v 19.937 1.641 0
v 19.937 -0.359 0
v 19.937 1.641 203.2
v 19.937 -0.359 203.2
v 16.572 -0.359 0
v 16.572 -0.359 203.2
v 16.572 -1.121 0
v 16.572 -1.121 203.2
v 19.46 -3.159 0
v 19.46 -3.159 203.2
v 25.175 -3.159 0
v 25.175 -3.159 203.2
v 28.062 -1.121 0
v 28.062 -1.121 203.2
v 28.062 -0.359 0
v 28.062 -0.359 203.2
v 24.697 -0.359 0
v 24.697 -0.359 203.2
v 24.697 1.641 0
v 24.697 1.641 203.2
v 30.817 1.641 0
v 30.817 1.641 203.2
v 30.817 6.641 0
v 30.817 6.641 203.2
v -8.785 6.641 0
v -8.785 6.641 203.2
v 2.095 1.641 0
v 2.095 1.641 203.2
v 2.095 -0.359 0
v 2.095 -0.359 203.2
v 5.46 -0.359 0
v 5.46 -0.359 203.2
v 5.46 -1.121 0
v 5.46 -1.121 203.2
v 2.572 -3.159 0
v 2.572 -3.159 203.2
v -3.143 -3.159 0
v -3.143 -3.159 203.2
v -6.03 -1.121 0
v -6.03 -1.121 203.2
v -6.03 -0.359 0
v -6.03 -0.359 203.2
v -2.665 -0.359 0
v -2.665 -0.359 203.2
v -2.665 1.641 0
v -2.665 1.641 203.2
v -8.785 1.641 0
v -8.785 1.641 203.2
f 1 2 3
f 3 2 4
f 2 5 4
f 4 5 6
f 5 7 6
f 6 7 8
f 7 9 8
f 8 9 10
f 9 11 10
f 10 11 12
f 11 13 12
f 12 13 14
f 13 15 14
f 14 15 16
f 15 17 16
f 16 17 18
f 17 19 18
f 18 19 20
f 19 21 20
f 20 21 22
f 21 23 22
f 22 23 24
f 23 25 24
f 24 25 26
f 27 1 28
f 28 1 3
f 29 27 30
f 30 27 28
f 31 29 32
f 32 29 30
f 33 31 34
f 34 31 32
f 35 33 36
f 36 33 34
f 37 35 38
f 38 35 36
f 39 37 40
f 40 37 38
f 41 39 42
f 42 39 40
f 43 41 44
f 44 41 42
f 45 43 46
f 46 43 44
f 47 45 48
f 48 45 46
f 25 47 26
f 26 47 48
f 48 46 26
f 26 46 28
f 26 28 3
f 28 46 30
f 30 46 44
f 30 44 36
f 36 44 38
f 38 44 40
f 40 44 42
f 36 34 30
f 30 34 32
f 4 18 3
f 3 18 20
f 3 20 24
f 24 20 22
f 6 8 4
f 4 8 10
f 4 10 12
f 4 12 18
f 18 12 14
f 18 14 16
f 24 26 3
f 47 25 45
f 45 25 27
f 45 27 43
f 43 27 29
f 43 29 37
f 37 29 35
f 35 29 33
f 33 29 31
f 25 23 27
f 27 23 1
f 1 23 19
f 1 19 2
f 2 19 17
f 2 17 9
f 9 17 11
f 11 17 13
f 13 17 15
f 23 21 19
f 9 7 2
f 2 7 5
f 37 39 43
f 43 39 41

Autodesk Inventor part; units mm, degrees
ref_plane "YZ Plane" through (0, 0, 0) normal (1, 0, 0) x (0, 1, 0)
ref_plane "XZ Plane" through (0, 0, 0) normal (0, 1, 0) x (-1, 0, 0)
ref_plane "XY Plane" through (0, 0, 0) normal (0, 0, 1) x (1, 0, 0)
sketch "Sketch1" plane through (0, 0, 0) normal (0, 0, 1) x (1, 0, 0)
  line L0 (0, 0) -> (14.5304, 0)
  line L1 (-8.7854, 6.6412) -> (11.016, 6.6412)
  line L2 (11.016, 1.6412) -> (2.0946, 1.6412)
  line L3 (2.0946, 1.6412) -> (2.0946, -0.3588)
  line L4 (2.0946, -0.3588) -> (5.4596, -0.3588)
  line L5 (2.5721, -3.1588) -> (-3.1429, -3.1588)
  line L6 (-3.1429, -3.1588) -> (-6.0304, -1.1208)
  line L7 (-6.0304, -1.1208) -> (-6.0304, -0.3588)
  line L8 (-6.0304, -0.3588) -> (-2.6654, -0.3588)
  line L9 (-2.6654, -0.3588) -> (-2.6654, 1.6412)
  line L10 (-2.6654, 1.6412) -> (-8.7854, 1.6412)
  line L11 (-8.7854, 1.6412) -> (-8.7854, 6.6412)
  line L12 (5.4596, -0.3588) -> (5.4596, -1.1208)
  line L13 (5.4596, -1.1208) -> (2.5721, -3.1588)
  line L14 (11.016, 6.6412) -> (11.016, 1.6412)
  line L15 (0, 0) -> (0, 4.3587)
  line L16 (11.016, 6.6412) -> (11.016, 1.6412)
  dimension "d2" = 5
  dimension "d3" = 2
  dimension "d4" = 4.76
  dimension "d6" = 11.49
  dimension "d7" = 2.755
  dimension "d8" = 5.715
  dimension "d9" = 5.6425
  dimension "d10" = 6.12
  dimension "d11" = 0.762
  dimension "d12" = 0.762
  dimension "d50" = 144.786
  dimension "d51" = 2.8875
  dimension "d53" = 11.016
extrude "Extrusion1" add sketch "Sketch1" along normal blind 203.2
mirror "Mirror1" about plane through (11.016, 1.6412, 0) normal (1, 0, 0)
equation "\"d7\" = -0.5 * d6 + 0.5 * d0"
equation "\"d9\" = -0.5 * d8 + 0.5 * d0"
equation "\"d10\" = -0.5 * d4 + 0.5 * d0"
equation "\"d12\" = d11"
equation "\"d0\" = 17"
properties part number "Sliderfor2020"
